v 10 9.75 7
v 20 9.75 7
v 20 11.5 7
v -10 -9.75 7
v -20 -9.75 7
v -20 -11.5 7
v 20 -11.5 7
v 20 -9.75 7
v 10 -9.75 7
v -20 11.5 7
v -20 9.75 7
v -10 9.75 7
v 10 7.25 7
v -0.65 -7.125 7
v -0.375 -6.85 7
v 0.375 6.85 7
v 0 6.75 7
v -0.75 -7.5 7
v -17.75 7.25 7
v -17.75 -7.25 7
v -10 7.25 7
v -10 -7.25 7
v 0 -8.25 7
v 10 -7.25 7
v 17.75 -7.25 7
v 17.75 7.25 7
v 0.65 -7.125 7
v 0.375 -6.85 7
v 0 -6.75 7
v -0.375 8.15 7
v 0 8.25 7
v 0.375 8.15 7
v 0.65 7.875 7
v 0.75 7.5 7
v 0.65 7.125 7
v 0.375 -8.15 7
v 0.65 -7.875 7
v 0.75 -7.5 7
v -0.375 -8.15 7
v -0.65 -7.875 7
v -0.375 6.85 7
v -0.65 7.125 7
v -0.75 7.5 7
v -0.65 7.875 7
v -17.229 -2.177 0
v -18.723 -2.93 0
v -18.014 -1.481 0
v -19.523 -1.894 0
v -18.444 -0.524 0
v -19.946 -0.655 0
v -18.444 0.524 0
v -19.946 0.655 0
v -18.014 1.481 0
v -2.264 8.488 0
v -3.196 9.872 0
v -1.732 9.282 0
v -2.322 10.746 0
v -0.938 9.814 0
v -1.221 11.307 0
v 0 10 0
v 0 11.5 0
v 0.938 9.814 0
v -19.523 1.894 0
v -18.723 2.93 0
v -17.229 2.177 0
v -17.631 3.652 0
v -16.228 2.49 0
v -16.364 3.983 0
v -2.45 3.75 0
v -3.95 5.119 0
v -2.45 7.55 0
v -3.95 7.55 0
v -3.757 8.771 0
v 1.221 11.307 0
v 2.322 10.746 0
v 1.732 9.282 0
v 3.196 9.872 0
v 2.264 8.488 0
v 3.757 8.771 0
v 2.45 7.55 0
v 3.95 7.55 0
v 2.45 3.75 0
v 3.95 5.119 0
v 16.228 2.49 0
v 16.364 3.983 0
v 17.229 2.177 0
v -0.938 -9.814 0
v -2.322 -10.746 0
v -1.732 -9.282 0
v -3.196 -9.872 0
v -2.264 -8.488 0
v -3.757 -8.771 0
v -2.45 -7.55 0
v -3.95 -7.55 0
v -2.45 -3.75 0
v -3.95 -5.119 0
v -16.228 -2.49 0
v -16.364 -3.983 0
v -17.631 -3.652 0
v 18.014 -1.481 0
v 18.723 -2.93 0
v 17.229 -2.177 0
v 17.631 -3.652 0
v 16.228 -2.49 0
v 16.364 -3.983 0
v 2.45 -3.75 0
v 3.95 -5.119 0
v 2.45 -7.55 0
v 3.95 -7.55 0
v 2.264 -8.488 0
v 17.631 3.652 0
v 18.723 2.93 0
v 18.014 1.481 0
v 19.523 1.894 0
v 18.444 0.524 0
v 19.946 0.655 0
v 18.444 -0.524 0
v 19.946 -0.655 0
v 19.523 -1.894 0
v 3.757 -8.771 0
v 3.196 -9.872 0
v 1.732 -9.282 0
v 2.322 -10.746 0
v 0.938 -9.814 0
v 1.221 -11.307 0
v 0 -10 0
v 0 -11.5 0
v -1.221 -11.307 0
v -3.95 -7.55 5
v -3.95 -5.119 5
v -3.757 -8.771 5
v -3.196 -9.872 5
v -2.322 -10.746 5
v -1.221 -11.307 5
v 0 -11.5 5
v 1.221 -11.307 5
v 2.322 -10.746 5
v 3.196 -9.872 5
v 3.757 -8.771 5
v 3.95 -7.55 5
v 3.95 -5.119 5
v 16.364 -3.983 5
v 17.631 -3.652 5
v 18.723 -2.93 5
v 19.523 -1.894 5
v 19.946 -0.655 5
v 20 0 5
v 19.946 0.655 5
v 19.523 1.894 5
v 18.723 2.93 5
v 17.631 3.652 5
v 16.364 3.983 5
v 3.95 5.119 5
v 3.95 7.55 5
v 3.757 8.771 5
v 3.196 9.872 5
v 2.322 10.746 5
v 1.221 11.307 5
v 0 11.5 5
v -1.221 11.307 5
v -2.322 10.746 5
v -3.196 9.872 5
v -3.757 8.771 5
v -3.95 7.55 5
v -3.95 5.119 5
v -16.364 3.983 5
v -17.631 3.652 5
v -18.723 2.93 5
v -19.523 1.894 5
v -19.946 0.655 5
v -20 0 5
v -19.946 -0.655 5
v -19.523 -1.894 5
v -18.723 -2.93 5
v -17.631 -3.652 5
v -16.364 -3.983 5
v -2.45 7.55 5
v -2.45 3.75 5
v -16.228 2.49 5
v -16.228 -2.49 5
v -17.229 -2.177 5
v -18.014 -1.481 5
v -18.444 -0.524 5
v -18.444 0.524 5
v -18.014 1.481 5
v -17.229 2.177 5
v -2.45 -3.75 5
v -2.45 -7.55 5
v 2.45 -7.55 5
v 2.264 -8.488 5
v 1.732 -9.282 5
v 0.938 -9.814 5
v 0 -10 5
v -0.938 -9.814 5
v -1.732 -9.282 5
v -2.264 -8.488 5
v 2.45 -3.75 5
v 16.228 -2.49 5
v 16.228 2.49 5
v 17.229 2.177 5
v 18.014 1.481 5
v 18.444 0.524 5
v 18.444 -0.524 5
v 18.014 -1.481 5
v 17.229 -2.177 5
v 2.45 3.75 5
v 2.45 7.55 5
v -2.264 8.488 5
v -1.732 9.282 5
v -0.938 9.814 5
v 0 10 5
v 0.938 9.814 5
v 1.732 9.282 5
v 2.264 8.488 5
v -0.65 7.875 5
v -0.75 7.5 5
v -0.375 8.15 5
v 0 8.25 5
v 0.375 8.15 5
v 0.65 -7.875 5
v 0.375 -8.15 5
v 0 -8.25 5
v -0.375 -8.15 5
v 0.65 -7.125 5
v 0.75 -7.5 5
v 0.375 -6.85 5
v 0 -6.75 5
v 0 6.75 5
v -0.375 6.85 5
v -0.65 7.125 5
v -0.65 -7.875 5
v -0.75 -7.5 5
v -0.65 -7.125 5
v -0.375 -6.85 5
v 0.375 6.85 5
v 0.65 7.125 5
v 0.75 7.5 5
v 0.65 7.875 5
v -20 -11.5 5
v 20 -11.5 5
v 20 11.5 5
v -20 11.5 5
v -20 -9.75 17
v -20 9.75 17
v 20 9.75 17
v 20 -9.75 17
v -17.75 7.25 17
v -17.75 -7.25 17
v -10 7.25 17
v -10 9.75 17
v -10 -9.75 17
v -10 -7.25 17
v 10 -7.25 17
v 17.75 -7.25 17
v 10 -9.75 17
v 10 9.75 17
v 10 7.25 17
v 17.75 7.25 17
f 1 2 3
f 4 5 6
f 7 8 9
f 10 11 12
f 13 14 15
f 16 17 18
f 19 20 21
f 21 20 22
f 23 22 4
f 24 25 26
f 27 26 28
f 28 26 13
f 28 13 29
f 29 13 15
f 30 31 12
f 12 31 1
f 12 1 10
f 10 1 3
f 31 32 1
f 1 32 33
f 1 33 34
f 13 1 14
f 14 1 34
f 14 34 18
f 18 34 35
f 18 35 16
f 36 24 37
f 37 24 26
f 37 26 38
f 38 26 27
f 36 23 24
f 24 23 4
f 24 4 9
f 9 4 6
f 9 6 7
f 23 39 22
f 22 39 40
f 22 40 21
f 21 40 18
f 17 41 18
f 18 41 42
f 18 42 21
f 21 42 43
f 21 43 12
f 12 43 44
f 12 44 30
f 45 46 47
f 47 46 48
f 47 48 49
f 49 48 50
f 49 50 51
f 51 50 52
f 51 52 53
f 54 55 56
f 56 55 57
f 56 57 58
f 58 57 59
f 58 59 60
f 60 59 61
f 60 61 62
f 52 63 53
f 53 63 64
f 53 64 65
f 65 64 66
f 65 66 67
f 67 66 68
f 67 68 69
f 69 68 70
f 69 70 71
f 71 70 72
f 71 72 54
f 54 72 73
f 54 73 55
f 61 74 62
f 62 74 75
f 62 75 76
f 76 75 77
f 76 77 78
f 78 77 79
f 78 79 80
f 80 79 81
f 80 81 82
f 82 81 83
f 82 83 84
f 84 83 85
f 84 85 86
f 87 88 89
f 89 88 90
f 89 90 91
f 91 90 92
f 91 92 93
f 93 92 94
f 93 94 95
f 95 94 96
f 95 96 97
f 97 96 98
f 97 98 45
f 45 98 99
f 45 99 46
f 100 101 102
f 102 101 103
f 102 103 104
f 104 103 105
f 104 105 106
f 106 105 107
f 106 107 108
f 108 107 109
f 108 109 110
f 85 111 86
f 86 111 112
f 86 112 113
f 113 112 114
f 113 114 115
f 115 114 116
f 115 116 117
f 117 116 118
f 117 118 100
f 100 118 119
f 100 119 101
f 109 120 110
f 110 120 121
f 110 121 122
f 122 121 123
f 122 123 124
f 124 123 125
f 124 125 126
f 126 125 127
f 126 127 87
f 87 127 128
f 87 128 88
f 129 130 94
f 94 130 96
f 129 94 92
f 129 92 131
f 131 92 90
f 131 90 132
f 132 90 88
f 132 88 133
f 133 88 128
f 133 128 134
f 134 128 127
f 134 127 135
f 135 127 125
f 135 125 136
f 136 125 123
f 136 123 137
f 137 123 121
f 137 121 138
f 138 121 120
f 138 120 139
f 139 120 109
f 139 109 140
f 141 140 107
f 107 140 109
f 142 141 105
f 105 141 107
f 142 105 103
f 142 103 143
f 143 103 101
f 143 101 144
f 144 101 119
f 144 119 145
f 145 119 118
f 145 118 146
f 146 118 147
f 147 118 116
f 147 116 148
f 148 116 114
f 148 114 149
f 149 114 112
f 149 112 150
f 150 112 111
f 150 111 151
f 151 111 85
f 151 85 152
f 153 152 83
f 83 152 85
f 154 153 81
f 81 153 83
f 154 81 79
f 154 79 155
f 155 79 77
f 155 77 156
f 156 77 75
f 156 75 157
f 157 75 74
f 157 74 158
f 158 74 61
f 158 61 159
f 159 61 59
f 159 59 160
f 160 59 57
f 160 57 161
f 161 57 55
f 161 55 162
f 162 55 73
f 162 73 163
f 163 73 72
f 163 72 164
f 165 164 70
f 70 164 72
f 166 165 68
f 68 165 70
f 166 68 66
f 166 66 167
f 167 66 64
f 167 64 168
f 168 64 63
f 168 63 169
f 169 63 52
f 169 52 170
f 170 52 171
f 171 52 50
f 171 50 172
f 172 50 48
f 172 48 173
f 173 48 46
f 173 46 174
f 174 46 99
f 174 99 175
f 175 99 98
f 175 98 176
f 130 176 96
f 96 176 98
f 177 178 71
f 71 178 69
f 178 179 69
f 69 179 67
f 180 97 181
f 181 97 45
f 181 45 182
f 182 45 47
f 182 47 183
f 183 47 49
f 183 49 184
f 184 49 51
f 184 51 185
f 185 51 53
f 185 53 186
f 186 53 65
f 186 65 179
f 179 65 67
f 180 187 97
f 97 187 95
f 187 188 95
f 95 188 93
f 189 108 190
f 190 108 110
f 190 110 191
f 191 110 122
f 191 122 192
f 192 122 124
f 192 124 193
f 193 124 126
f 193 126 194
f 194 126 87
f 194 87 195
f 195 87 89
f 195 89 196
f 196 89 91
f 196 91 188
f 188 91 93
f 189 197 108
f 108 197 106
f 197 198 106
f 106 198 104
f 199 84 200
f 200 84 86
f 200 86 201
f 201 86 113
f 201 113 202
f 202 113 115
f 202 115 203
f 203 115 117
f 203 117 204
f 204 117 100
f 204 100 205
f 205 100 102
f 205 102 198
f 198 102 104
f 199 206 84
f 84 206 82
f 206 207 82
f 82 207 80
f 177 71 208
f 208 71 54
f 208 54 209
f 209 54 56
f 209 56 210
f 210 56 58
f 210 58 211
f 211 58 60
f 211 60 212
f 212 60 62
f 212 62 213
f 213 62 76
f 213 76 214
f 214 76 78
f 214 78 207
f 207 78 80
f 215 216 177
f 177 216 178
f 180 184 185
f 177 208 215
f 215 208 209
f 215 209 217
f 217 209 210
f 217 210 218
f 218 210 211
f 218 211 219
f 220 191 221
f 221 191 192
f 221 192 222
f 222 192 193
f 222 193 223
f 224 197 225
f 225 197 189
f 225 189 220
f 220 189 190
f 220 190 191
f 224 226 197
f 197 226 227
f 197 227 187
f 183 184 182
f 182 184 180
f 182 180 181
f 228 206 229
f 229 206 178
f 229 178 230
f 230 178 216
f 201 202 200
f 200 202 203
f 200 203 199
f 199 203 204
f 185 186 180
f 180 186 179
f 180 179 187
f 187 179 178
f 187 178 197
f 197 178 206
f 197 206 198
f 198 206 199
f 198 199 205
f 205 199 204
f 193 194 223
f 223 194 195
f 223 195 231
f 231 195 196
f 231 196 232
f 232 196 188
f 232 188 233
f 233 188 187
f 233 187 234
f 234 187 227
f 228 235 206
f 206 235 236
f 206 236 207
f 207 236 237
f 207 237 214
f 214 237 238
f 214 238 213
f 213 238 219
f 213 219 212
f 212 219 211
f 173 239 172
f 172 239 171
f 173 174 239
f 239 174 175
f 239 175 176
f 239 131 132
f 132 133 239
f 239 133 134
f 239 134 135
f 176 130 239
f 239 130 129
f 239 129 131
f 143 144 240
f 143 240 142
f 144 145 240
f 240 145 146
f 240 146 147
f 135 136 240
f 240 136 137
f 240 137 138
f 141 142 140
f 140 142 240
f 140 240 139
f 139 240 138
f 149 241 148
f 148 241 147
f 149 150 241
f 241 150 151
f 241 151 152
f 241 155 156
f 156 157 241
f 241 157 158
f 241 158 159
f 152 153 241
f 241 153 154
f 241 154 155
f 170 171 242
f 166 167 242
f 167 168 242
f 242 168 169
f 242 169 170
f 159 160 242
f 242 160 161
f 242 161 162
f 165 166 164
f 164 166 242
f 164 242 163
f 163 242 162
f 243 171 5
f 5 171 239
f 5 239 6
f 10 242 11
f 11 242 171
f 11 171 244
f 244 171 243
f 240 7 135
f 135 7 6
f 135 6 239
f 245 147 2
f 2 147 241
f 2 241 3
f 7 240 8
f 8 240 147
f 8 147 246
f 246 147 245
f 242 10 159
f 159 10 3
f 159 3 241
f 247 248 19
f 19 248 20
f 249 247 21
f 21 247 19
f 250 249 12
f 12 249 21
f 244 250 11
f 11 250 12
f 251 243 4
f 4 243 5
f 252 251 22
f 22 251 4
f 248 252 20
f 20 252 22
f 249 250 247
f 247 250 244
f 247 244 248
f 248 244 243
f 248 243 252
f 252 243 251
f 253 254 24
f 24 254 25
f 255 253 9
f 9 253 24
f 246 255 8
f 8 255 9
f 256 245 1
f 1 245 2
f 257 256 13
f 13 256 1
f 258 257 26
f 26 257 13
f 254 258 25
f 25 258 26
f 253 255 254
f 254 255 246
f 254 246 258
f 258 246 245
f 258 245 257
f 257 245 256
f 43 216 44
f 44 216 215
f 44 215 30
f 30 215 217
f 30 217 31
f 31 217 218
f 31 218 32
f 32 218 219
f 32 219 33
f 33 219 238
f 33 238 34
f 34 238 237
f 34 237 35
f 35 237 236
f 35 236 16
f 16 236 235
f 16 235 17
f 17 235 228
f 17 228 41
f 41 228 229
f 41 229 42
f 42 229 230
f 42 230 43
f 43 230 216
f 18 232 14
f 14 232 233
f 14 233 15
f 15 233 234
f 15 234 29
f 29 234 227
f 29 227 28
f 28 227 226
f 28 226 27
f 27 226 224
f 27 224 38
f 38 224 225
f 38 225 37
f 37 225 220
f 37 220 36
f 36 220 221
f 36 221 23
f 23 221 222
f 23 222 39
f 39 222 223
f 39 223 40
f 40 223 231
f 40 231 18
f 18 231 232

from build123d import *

# Parameters (mm, degrees)
SALIENTE_EXTRUIR1_DEPTH = 5
CROQUIS2_W              = 40
CROQUIS2_H              = 23
SALIENTE_EXTRUIR2_DEPTH = 2
SALIENTE_EXTRUIR3_DEPTH = 10
CROQUIS4_R              = 0.75
CORTAR_EXTRUIR1_DEPTH   = 10


with BuildPart() as part:
    # Croquis1 → Saliente-Extruir1 (new body)
    with BuildSketch(Plane.XY):
        with BuildLine():
            Line((-3.95, -5.119042668), (-16.364400449, -3.983366957))
            ThreePointArc((-16.364400449, -3.983366957), (-20, 0), (-16.364400449, 3.983366957))
            Line((-16.364400449, 3.983366957), (-3.95, 5.119042668))
            Line((-3.95, 5.119042668), (-3.95, 7.55))
            ThreePointArc((-3.95, 7.55), (0, 11.5), (3.95, 7.55))
            Line((3.95, 7.55), (3.95, 5.119042668))
            Line((3.95, 5.119042668), (16.364400449, 3.983366957))
            ThreePointArc((16.364400449, 3.983366957), (20, 0), (16.364400449, -3.983366957))
            Line((16.364400449, -3.983366957), (3.95, -5.119042668))
            Line((3.95, -5.119042668), (3.95, -7.55))
            ThreePointArc((3.95, -7.55), (0, -11.5), (-3.95, -7.55))
            Line((-3.95, -7.55), (-3.95, -5.119042668))
        make_face()
        with BuildLine():
            Line((-2.45, 3.75), (-16.227750281, 2.489604348))
            ThreePointArc((-16.227750281, 2.489604348), (-18.5, 0), (-16.227750281, -2.489604348))
            Line((-16.227750281, -2.489604348), (-2.45, -3.75))
            Line((-2.45, -3.75), (-2.45, -7.55))
            ThreePointArc((-2.45, -7.55), (0, -10), (2.45, -7.55))
            Line((2.45, -7.55), (2.45, -3.75))
            Line((2.45, -3.75), (16.227750281, -2.489604348))
            ThreePointArc((16.227750281, -2.489604348), (18.5, 0), (16.227750281, 2.489604348))
            Line((16.227750281, 2.489604348), (2.45, 3.75))
            Line((2.45, 3.75), (2.45, 7.55))
            ThreePointArc((2.45, 7.55), (0, 10), (-2.45, 7.55))
            Line((-2.45, 7.55), (-2.45, 3.75))
        make_face(mode=Mode.SUBTRACT)
    extrude(amount=SALIENTE_EXTRUIR1_DEPTH)

    # Croquis2 → Saliente-Extruir2 (add)
    with BuildSketch(Plane.XY.offset(5)):
        Rectangle(CROQUIS2_W, CROQUIS2_H)
    extrude(amount=SALIENTE_EXTRUIR2_DEPTH)

    # Croquis3 → Saliente-Extruir3 (add)
    with BuildSketch(Plane.XY.offset(7)):
        Polygon((-10, 7.25), (-10, 9.75), (-20, 9.75), (-20, -9.75), (-10, -9.75), (-10, -7.25), (-17.75, -7.25), (-17.75, 7.25), align=None)
        Polygon((17.75, 7.25), (17.75, -7.25), (10, -7.25), (10, -9.75), (20, -9.75), (20, 9.75), (10, 9.75), (10, 7.25), align=None)
    extrude(amount=SALIENTE_EXTRUIR3_DEPTH)

    # Croquis4 → Cortar-Extruir1 (cut)
    with BuildSketch(Plane(origin=(0, 0, 5), x_dir=(-1, 0, 0), z_dir=(0, 0, -1))):
        with Locations((0, -7.5)):
            Circle(CROQUIS4_R)
        with Locations((0, 7.5)):
            Circle(CROQUIS4_R)
    extrude(amount=-CORTAR_EXTRUIR1_DEPTH, mode=Mode.SUBTRACT)


solid = part.part
